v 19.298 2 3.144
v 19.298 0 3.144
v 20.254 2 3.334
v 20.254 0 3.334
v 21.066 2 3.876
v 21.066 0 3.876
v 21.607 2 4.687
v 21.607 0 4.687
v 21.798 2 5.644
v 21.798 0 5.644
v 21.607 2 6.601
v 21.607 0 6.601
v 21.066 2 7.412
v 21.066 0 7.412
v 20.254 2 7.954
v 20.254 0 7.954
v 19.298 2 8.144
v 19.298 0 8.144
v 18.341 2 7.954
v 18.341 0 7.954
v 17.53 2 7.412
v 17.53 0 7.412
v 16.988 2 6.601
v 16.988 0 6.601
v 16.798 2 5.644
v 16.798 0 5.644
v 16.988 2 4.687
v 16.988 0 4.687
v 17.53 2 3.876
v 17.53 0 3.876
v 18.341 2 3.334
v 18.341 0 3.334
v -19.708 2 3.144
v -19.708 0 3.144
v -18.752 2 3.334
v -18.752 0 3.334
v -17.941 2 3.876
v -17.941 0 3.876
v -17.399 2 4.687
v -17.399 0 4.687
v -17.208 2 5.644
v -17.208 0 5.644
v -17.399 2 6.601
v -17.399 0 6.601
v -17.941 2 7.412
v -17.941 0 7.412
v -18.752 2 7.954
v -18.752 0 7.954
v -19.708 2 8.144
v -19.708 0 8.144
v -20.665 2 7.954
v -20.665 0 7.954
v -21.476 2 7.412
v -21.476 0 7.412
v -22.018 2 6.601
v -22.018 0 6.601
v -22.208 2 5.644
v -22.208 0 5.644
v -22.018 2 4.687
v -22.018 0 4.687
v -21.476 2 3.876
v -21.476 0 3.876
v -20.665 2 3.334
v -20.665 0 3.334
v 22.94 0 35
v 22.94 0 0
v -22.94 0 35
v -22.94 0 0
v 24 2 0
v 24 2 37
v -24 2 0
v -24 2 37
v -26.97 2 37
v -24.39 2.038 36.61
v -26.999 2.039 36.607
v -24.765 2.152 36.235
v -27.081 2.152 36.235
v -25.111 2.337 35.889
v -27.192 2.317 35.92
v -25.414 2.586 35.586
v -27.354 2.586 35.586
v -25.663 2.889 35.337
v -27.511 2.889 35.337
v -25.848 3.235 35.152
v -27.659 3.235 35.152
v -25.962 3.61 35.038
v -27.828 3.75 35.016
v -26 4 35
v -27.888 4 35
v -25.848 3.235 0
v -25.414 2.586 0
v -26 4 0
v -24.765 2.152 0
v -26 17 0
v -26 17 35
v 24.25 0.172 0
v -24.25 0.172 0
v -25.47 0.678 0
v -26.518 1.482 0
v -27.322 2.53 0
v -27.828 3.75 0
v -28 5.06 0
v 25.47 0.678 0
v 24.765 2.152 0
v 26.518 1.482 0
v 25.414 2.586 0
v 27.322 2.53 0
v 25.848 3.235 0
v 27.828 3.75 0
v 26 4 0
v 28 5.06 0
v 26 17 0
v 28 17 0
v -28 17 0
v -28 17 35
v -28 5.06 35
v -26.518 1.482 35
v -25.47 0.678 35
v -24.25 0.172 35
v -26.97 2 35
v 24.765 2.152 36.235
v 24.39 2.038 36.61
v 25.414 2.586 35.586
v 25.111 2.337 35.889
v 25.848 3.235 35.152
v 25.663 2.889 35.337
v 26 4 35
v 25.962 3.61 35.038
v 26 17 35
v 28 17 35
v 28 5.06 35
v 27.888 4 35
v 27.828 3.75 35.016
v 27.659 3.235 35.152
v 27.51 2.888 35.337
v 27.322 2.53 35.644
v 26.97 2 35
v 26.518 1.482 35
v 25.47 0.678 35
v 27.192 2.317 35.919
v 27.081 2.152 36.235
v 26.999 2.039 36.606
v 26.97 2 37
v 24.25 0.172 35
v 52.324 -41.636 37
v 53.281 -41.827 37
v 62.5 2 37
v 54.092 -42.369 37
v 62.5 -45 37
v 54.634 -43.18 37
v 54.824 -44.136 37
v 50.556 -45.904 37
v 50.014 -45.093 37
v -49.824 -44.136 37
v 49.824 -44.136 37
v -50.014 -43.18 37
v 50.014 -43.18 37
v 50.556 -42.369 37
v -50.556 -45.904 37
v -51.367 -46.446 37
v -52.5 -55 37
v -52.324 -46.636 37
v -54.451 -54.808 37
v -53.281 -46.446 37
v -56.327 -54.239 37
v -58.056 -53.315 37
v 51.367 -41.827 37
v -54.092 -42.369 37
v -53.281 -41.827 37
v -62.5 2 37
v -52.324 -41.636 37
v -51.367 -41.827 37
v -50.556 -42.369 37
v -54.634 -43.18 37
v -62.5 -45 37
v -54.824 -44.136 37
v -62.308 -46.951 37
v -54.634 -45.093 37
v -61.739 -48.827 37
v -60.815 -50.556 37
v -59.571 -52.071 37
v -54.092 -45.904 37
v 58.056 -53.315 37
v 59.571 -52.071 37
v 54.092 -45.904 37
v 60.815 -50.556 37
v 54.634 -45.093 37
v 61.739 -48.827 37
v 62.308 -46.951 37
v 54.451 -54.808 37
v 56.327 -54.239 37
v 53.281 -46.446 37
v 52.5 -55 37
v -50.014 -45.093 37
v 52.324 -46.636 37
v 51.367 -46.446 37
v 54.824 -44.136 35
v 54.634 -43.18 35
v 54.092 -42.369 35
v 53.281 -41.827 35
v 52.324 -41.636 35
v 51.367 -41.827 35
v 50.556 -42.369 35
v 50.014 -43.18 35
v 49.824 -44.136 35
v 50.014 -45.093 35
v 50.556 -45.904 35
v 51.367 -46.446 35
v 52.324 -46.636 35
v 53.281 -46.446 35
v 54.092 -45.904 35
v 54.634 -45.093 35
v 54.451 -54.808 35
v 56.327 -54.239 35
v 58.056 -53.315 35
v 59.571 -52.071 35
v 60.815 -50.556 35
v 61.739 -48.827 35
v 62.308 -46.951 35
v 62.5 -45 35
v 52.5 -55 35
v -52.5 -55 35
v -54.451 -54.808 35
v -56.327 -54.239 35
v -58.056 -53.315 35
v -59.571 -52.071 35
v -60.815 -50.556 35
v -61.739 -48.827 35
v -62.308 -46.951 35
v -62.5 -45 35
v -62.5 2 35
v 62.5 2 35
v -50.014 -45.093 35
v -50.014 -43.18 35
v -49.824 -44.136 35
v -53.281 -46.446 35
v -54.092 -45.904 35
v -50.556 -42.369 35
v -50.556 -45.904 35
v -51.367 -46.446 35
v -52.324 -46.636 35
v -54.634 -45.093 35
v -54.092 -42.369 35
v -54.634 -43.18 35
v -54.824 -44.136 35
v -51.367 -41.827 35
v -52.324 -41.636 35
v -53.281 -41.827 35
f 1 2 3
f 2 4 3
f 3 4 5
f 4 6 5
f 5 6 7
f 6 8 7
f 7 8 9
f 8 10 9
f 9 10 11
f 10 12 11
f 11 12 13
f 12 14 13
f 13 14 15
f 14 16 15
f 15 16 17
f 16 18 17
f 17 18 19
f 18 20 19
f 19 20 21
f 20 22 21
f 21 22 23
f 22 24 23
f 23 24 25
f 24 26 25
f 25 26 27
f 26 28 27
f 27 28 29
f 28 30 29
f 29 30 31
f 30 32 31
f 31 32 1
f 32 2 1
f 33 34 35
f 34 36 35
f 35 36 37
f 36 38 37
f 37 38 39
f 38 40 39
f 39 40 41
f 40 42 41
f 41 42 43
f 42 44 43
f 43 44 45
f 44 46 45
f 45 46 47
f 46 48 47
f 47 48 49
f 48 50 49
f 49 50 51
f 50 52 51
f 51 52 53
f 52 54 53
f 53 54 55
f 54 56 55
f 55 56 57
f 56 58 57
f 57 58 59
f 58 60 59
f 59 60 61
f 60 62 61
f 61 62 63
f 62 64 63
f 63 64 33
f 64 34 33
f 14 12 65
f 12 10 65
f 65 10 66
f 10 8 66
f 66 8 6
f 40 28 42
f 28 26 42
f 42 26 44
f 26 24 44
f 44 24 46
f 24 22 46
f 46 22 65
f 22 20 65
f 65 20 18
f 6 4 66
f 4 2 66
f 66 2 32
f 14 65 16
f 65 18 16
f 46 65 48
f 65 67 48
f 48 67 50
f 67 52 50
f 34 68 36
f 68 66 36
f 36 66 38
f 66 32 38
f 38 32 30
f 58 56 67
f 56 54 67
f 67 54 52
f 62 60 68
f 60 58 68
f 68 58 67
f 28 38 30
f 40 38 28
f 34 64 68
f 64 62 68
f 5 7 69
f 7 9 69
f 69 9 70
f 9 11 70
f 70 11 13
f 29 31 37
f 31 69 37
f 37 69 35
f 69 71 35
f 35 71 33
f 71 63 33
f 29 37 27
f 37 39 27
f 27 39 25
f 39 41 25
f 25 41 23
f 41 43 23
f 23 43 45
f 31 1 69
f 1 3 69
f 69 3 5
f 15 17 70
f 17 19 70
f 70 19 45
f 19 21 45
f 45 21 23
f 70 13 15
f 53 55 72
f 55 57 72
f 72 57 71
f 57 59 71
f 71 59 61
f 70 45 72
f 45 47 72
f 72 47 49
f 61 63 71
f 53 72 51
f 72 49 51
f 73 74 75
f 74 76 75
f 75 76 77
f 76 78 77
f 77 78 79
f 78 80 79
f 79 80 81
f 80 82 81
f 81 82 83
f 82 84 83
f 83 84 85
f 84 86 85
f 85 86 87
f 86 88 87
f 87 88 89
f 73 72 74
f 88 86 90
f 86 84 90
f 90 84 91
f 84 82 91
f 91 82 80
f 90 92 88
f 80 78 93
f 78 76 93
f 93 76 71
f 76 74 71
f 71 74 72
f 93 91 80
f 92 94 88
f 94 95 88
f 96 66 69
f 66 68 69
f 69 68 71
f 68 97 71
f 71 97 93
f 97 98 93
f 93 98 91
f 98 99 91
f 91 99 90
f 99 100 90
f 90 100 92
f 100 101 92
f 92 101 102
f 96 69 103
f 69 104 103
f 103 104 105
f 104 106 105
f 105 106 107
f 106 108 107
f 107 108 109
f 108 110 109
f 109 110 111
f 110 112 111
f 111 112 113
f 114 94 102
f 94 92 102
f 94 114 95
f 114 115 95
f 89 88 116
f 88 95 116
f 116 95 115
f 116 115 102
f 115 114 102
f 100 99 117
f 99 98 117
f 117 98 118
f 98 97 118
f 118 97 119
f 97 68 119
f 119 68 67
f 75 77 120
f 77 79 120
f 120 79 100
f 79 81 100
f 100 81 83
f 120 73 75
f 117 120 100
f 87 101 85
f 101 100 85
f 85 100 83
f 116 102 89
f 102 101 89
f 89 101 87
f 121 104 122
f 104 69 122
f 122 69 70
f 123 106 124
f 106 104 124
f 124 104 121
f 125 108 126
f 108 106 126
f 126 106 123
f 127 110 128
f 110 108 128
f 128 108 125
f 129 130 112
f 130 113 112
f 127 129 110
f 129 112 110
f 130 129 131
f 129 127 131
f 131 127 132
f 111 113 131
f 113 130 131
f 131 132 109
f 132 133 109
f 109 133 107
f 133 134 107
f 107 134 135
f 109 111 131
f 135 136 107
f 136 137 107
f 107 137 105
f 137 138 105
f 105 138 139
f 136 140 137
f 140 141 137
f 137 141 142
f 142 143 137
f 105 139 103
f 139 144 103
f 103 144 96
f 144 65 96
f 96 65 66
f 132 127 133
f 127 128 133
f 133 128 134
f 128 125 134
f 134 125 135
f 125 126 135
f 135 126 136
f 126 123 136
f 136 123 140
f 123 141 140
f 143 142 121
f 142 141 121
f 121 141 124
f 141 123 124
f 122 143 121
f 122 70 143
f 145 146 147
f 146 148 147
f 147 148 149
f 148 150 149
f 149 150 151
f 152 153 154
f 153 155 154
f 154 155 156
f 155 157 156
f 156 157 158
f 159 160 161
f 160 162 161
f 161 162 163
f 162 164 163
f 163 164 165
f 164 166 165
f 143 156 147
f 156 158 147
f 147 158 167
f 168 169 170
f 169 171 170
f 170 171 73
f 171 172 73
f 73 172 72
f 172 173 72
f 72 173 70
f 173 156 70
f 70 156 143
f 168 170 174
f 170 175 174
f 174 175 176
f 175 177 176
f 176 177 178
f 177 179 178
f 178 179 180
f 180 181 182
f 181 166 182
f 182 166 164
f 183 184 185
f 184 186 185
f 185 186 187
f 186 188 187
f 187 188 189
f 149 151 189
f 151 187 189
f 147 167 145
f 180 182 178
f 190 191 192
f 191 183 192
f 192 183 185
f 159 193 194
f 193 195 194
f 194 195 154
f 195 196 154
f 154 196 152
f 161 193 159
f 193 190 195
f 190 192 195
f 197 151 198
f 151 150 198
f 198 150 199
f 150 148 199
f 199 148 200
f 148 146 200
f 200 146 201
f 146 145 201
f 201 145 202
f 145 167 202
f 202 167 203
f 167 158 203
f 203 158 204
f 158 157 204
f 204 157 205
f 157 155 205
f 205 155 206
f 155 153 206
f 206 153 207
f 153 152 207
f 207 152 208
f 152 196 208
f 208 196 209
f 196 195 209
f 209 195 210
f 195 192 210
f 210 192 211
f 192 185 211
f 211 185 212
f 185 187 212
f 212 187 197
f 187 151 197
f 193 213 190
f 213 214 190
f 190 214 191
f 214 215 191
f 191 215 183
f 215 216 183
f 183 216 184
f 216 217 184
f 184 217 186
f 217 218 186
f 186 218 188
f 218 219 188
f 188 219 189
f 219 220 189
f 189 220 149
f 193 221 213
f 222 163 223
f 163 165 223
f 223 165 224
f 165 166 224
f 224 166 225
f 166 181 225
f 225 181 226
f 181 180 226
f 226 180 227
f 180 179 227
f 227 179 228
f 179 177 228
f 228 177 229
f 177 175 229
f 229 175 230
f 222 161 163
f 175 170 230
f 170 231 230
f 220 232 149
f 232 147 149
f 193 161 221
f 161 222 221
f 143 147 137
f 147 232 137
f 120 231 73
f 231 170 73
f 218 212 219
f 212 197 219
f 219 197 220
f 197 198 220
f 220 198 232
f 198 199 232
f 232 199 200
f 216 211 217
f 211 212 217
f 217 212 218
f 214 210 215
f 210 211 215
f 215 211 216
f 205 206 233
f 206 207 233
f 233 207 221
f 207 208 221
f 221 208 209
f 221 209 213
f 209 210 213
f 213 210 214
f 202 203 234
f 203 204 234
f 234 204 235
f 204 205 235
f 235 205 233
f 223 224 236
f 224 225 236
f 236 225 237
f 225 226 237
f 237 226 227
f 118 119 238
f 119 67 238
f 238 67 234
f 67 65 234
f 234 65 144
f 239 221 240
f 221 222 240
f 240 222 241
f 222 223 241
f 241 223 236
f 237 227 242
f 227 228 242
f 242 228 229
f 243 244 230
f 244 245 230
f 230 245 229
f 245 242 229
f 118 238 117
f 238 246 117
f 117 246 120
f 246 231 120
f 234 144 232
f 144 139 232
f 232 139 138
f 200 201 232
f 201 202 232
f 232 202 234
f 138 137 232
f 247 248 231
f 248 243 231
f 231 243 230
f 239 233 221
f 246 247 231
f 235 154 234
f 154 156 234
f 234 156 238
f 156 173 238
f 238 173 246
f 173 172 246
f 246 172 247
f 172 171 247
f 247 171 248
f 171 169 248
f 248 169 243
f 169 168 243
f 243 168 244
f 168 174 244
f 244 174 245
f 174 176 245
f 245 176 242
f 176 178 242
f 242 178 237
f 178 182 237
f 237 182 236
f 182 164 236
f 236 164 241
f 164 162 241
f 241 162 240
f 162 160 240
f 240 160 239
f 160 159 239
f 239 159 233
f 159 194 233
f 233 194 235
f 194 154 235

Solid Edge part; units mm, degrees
sketch "Sketch1" plane through (0, 0, 0) normal (1, 0, 0) x (0, 1, 0)
  line L0 (0, 0) -> (0, 35)
  line L1 (0, 35) -> (2, 35)
  line L2 (2, 35) -> (2, 0)
  line L3 (2, 0) -> (0, 0)
extrude "Protrusion1" add sketch "Sketch1" along normal mid plane 52
sketch "Sketch2" plane through (0, 0, 0) normal (1, 0, 0) x (0, 1, 0)
  line L0 (-55, 37) -> (0, 37)
  line L1 (2, 37) -> (0, 37)
  line L2 (2, 37) -> (2, 35)
  line L3 (0, 35) -> (2, 35)
  line L4 (0, 35) -> (-55, 35)
  line L5 (-55, 35) -> (-55, 37)
extrude "ExtrudedProtrusion_2" add sketch "Sketch2" along normal mid plane 125
sketch "Sketch3" plane through (0, -26.5, 37) normal (0, 0, 1) x (1, 0, 0)
  circle A0 centre (-52.3239, -17.6363) radius 2.5
  circle A1 centre (52.3239, -17.6363) radius 2.5
extrude "ExtrudedCutout_1" cut sketch "Sketch3" against normal blind 8.7921
sketch "Sketch4" plane through (0, 0, 17.5) normal (0, -1, 0) x (1, 0, 0)
  circle A0 centre (-19.7084, -11.8558) radius 2.5
  circle A1 centre (19.2978, -11.8558) radius 2.5
extrude "ExtrudedCutout_2" cut sketch "Sketch4" against normal blind 47.6347
sketch "Sketch5" plane through (0, 2, 18.5) normal (0, 1, 0) x (-1, 0, 0)
  line L0 (-28, -18.5) -> (-28, 16.5)
  line L1 (-28, 16.5) -> (-26, 16.5)
  line L2 (-26, 16.5) -> (-26, -18.5)
  line L3 (-26, -18.5) -> (-28, -18.5)
  line L4 (28, 16.5) -> (28, -18.5)
  line L5 (28, -18.5) -> (26, -18.5)
  line L6 (26, -18.5) -> (26, 16.5)
  line L7 (26, 16.5) -> (28, 16.5)
extrude "ExtrudedProtrusion_3" add sketch "Sketch5" against normal up to vertex (2 mm away) and the other way blind 15
fillet "Round_1" radius 5.06 2 edges at (28, 0, 17.5) (-28, 0, 17.5)
fillet "Round_2" radius 2 1 edges at (26, 2, 17.5)
fillet "Round_3" radius 2 1 edges at (-26, 2, 17.5)
fillet "Round_5" radius 2 2 edges at (25.4849, 2, 35) (-25.4849, 2, 35)
fillet "Round_6" radius 10 2 edges at (-62.5, -55, 36) (62.5, -55, 36)
